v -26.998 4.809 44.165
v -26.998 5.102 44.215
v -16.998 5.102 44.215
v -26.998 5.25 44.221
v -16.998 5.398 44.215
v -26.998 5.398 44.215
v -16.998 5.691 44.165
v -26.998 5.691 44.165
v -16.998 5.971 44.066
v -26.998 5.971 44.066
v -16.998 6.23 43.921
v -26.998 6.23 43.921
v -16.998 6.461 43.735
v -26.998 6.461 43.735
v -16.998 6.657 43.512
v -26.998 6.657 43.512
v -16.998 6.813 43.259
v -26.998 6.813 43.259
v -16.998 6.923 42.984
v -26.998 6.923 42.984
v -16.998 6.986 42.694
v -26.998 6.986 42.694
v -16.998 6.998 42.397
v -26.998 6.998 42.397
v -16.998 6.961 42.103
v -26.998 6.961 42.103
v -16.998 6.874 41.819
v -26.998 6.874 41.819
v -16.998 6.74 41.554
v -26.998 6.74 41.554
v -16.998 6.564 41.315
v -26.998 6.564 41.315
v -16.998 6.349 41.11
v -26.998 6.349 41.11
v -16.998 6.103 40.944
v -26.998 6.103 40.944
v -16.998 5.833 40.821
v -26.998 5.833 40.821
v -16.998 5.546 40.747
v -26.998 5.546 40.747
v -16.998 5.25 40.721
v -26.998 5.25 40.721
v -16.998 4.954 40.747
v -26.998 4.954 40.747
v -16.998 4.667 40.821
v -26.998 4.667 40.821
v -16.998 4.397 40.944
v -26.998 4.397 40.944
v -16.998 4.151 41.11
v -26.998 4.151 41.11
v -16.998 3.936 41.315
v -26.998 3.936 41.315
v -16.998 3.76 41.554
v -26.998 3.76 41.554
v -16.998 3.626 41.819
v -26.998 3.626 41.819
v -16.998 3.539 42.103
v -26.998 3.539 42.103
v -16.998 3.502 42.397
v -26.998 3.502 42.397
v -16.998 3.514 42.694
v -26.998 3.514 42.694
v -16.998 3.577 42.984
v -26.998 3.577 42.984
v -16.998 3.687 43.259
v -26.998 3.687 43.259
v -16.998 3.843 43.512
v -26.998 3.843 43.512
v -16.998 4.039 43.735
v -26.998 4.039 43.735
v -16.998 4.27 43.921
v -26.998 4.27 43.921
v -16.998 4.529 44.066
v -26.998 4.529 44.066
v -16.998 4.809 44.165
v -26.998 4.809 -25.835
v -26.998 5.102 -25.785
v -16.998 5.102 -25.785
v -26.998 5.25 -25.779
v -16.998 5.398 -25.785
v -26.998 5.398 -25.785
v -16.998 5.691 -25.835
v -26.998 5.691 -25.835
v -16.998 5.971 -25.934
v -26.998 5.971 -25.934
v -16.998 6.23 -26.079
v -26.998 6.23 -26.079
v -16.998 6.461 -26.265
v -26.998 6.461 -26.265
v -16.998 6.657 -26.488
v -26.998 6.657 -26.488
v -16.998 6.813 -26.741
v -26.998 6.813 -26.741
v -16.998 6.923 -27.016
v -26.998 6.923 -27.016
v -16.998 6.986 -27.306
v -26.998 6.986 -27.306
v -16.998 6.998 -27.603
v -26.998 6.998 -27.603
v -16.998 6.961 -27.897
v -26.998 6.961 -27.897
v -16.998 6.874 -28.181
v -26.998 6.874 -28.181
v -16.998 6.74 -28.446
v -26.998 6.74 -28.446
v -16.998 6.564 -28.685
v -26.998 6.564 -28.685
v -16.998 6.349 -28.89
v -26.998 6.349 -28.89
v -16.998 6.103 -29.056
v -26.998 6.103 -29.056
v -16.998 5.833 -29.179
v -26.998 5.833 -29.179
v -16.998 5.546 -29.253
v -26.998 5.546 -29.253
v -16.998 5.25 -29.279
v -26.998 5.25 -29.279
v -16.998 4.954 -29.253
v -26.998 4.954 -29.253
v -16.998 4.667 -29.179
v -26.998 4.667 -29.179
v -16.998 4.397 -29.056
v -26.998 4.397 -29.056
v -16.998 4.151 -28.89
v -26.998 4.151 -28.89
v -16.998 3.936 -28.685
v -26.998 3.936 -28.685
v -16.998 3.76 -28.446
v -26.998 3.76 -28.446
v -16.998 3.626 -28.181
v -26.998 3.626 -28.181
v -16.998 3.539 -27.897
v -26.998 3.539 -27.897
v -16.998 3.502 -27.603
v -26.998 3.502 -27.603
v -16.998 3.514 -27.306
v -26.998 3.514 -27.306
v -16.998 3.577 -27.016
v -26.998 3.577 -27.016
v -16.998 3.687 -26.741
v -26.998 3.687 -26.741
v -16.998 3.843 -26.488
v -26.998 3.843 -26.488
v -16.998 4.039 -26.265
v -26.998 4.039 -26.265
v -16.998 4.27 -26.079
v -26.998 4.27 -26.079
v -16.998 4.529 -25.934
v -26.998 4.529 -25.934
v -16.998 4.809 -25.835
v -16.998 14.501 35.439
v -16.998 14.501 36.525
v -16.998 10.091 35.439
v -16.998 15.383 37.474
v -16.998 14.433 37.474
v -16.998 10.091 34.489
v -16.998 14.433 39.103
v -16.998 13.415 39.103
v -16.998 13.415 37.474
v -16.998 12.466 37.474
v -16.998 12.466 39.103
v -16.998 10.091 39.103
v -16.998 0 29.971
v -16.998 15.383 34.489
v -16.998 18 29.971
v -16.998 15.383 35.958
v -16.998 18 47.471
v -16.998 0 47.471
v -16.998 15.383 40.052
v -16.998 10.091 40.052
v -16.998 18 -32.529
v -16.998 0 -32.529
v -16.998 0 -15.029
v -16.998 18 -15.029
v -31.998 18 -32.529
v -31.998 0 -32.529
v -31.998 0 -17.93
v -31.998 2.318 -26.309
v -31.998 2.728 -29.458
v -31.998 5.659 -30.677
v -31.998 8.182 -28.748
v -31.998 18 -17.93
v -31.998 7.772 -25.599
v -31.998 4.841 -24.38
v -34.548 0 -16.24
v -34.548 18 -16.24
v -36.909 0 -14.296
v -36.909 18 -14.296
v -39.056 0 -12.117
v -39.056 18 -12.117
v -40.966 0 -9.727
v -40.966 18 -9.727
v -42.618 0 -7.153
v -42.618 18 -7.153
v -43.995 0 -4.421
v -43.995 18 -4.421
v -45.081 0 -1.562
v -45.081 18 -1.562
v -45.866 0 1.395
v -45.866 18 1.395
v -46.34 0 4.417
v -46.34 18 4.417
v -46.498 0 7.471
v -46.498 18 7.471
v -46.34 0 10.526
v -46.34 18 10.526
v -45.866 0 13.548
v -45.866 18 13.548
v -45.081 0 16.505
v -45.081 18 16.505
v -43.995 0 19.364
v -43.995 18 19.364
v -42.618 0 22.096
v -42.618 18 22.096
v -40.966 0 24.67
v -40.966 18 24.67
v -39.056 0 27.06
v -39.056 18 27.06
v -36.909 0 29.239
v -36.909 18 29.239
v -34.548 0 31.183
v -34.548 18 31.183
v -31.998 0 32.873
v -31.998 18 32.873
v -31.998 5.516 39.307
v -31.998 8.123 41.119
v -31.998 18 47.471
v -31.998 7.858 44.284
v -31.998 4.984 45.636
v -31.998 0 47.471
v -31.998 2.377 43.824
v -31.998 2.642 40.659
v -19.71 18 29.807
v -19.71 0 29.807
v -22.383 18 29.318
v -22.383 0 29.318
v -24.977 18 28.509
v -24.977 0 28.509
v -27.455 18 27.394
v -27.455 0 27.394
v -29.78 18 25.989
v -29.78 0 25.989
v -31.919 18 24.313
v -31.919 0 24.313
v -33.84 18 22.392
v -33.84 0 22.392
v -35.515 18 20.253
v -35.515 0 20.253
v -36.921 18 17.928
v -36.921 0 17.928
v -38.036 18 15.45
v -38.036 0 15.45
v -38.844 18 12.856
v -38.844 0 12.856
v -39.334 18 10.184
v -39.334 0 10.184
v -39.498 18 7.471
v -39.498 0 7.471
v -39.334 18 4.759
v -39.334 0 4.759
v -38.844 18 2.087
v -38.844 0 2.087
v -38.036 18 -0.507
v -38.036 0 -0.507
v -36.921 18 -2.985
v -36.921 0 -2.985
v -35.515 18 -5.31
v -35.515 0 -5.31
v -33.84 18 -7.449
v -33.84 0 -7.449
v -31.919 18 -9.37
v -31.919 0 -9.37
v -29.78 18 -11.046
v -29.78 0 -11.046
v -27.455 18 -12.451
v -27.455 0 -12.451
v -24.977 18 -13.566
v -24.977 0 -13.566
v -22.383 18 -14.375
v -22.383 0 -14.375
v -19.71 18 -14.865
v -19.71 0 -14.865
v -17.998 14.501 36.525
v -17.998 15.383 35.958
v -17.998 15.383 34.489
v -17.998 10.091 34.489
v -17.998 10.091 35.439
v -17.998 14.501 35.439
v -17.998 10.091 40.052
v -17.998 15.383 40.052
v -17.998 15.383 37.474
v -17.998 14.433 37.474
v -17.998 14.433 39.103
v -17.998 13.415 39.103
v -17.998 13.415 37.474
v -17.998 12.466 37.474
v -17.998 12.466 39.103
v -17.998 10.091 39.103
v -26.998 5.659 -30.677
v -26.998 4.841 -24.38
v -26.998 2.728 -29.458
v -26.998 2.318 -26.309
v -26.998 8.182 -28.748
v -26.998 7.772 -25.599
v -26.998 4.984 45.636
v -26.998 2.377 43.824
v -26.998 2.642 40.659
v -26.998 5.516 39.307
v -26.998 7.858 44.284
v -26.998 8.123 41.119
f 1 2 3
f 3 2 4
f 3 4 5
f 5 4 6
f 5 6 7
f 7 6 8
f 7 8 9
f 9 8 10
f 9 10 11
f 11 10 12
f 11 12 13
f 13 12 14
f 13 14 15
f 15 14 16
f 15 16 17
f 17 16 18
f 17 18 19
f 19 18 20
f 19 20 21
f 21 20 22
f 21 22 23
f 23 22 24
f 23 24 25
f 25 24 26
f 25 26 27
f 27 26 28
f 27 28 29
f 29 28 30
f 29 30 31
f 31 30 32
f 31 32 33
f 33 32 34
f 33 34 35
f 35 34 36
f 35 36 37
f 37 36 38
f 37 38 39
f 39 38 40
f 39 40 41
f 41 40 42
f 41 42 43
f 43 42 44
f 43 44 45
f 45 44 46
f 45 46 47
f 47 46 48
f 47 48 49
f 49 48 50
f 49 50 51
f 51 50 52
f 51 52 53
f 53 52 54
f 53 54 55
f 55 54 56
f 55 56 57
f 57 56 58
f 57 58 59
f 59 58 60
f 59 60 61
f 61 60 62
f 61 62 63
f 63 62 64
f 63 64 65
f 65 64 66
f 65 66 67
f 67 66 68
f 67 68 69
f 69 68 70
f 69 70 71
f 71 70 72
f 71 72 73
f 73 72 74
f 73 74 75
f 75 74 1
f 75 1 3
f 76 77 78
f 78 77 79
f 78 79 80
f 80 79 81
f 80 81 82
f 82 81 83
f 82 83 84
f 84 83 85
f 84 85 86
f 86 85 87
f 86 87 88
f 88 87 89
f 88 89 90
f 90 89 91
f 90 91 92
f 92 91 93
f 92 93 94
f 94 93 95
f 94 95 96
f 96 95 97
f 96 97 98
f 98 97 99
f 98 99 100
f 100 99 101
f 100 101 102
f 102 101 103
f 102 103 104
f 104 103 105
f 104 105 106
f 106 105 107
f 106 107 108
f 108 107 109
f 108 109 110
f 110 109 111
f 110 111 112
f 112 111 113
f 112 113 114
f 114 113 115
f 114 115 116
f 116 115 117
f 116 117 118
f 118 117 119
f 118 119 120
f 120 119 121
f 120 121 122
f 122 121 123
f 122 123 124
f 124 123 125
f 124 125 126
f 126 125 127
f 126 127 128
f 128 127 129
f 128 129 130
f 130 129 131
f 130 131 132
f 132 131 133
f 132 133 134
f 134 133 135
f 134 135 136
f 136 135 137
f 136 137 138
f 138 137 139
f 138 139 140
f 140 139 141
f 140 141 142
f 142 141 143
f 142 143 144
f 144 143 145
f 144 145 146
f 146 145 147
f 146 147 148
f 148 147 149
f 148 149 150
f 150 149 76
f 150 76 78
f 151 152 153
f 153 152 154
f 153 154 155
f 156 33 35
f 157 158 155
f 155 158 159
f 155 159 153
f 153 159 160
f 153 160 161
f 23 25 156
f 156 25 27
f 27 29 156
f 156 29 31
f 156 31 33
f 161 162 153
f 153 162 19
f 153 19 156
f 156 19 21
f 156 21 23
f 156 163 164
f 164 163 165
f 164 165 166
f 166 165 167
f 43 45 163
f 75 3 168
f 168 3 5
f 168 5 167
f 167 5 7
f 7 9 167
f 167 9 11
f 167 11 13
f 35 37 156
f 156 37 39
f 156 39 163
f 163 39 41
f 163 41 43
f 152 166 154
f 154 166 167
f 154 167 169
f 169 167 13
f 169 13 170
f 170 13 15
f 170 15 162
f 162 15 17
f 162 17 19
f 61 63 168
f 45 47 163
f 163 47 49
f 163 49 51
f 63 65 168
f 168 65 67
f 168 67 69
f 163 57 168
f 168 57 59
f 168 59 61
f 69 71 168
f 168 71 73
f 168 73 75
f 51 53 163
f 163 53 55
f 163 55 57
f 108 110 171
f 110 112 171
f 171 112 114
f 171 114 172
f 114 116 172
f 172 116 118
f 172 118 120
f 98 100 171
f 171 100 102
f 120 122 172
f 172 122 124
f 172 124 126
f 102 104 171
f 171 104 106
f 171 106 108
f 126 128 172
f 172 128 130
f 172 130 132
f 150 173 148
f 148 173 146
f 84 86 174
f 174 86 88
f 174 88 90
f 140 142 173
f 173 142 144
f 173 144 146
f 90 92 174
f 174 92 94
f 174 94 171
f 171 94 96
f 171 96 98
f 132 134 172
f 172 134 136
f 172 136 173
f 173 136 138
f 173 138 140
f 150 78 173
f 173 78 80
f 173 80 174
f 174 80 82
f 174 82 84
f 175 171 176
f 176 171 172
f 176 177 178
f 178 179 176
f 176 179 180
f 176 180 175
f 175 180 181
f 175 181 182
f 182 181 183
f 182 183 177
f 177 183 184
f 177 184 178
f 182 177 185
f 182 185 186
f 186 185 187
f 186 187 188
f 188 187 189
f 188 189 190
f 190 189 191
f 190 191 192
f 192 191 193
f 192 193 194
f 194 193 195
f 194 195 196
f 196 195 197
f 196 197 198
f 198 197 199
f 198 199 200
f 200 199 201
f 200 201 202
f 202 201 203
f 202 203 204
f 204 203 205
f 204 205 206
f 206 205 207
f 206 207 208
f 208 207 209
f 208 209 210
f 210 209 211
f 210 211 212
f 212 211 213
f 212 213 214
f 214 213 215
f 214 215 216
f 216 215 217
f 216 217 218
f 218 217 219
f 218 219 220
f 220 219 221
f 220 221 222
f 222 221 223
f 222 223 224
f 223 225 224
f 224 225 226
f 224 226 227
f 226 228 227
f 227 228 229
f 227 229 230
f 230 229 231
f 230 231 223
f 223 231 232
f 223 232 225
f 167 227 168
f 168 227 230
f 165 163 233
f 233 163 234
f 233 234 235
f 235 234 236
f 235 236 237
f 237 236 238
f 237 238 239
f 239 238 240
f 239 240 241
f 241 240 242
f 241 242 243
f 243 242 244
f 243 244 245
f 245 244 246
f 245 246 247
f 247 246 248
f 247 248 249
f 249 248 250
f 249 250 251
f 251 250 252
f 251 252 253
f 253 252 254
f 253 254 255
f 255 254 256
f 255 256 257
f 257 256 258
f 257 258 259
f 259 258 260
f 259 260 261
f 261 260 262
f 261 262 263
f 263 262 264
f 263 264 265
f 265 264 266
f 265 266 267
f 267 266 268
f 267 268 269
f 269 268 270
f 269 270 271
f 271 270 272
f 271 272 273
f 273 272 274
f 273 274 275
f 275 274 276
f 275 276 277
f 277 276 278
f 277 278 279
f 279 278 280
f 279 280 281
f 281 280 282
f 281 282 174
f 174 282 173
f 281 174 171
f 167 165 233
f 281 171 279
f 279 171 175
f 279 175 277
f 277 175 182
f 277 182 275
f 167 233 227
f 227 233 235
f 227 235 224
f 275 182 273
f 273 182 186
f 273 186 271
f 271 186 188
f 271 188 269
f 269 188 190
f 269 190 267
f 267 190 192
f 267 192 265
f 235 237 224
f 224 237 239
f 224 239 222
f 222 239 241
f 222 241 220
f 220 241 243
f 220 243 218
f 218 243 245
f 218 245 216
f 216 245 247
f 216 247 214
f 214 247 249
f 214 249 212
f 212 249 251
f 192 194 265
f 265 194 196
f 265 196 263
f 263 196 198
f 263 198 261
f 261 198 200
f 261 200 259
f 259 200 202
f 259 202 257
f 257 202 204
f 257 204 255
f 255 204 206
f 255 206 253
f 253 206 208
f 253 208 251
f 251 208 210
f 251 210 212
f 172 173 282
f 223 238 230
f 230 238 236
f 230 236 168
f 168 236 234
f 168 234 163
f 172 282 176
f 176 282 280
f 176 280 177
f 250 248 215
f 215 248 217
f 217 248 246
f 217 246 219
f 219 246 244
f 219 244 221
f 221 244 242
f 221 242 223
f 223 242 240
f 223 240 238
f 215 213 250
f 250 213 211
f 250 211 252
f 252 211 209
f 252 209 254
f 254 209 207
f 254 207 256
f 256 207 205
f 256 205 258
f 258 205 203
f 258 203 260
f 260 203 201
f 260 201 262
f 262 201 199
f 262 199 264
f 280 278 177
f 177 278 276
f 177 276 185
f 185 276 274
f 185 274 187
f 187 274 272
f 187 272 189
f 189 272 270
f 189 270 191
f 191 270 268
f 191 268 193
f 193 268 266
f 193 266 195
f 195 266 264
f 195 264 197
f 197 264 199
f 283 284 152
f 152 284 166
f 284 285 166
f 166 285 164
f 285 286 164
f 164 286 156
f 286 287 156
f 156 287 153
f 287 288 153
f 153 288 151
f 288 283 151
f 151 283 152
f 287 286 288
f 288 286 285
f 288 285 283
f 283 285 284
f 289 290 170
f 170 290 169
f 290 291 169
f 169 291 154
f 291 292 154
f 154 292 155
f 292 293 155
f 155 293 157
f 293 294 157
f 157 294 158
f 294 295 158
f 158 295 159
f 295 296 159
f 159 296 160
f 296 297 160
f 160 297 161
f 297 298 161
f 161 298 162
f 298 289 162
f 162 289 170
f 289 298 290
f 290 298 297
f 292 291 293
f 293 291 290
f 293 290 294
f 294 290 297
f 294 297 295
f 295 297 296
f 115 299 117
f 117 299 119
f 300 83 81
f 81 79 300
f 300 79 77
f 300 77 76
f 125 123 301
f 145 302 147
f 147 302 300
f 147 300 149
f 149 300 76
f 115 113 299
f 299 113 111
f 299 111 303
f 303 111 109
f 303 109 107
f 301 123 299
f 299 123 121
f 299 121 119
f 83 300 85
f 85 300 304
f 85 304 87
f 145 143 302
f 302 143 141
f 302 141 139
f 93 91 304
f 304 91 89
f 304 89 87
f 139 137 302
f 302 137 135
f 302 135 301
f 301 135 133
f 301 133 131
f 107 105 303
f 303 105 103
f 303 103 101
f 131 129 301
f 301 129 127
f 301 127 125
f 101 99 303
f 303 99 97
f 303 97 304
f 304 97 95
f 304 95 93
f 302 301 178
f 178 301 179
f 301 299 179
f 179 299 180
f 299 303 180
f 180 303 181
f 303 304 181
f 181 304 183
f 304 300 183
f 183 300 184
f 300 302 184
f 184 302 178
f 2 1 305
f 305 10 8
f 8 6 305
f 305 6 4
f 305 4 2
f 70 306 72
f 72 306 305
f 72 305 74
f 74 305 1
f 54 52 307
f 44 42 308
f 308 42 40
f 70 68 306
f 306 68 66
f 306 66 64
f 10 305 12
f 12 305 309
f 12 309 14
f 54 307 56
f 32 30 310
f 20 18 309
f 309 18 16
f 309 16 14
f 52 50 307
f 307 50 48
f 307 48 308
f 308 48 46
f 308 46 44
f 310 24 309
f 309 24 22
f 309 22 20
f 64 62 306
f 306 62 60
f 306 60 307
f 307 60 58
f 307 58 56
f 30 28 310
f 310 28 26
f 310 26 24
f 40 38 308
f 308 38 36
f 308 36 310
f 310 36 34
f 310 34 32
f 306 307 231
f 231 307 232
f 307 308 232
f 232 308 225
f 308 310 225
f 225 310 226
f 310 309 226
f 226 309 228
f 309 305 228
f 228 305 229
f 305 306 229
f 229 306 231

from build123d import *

# Parameters (mm, degrees)
BOSS_EXTRUDE1_DEPTH = 18
SKETCH2_R           = 1.75
CUT_EXTRUDE1_DEPTH  = 30.5
CUT_EXTRUDE2_DEPTH  = 1
CUT_EXTRUDE3_DEPTH  = 5


with BuildPart() as part:
    # Sketch1 → Boss-Extrude1 (new body)
    with BuildSketch(Plane(origin=(0, 0, 0), x_dir=(1, 0, 0), z_dir=(0, 1, 0))):
        with BuildLine():
            ThreePointArc((-16.998275301, 22.028571429), (-24.773162376, 20.985576383), (-31.998275301, 17.93034302))
            ThreePointArc((-31.998275301, 17.93034302), (-46.498275301, -7.471428571), (-31.998275301, -32.873200163))
            ThreePointArc((-31.998275301, -32.873200163), (-24.773162376, -35.928433526), (-16.998275301, -36.971428571))
            Line((-16.998275301, -36.971428571), (-16.998275301, -29.971428571))
            ThreePointArc((-16.998275301, -29.971428571), (-39.498275301, -7.471428571), (-16.998275301, 15.028571429))
            Line((-16.998275301, 15.028571429), (-16.998275301, 22.028571429))
        make_face()
        with BuildLine():
            Line((-16.998275301, 32.528571429), (-31.998275301, 32.528571429))
            Line((-31.998275301, 32.528571429), (-31.998275301, 17.93034302))
            ThreePointArc((-31.998275301, 17.93034302), (-24.773162376, 20.985576383), (-16.998275301, 22.028571429))
            Line((-16.998275301, 22.028571429), (-16.998275301, 32.528571429))
        make_face()
        with BuildLine():
            Line((-31.998275301, -32.873200163), (-31.998275301, -47.471428571))
            Line((-31.998275301, -47.471428571), (-16.998275301, -47.471428571))
            Line((-16.998275301, -47.471428571), (-16.998275301, -36.971428571))
            ThreePointArc((-16.998275301, -36.971428571), (-24.773162376, -35.928433526), (-31.998275301, -32.873200163))
        make_face()
    extrude(amount=BOSS_EXTRUDE1_DEPTH)

    # Sketch2 → Cut-Extrude1 (cut, through all)
    with BuildSketch(Plane(origin=(-16.998275301, 0, 0), x_dir=(0, 0, -1), z_dir=(1, 0, 0))):
        with Locations((-42.471428571, 5.25)):
            Circle(SKETCH2_R)
        with Locations((27.528571429, 5.25)):
            Circle(SKETCH2_R)
    extrude(amount=-CUT_EXTRUDE1_DEPTH, mode=Mode.SUBTRACT)

    # Sketch3 → Cut-Extrude2 (cut)
    with BuildSketch(Plane(origin=(-16.998275301, 0, 0), x_dir=(0, 0, -1), z_dir=(1, 0, 0))):
        Polygon((-40.05243206, 15.382896708), (-37.474440607, 15.382896708), (-37.474440607, 14.433110383), (-39.102645735, 14.433110383), (-39.102645735, 13.415482178), (-37.474440607, 13.415482178), (-37.474440607, 12.465695853), (-39.102645735, 12.465695853), (-39.102645735, 10.091230041), (-40.05243206, 10.091230041), align=None)
        Polygon((-35.957538563, 15.382896708), (-34.489397872, 15.382896708), (-34.489397872, 10.091230041), (-35.439184196, 10.091230041), (-35.439184196, 14.500952263), (-36.524654282, 14.500952263), align=None)
    extrude(amount=-CUT_EXTRUDE2_DEPTH, mode=Mode.SUBTRACT)

    # Sketch4 → Cut-Extrude3 (cut)
    with BuildSketch(Plane.ZY.offset(31.998275301)):
        Polygon((-26.308738524, 2.318218798), (-24.379657977, 4.840515682), (-25.599490881, 7.772296885), (-28.748404333, 8.181781202), (-30.67748488, 5.659484318), (-29.457651976, 2.727703115), align=None)
        Polygon((43.823590255, 2.376849792), (45.635730482, 4.984431264), (44.283568799, 7.857581471), (41.119266888, 8.123150208), (39.307126661, 5.515568736), (40.659288344, 2.642418529), align=None)
    extrude(amount=-CUT_EXTRUDE3_DEPTH, mode=Mode.SUBTRACT)


solid = part.part
